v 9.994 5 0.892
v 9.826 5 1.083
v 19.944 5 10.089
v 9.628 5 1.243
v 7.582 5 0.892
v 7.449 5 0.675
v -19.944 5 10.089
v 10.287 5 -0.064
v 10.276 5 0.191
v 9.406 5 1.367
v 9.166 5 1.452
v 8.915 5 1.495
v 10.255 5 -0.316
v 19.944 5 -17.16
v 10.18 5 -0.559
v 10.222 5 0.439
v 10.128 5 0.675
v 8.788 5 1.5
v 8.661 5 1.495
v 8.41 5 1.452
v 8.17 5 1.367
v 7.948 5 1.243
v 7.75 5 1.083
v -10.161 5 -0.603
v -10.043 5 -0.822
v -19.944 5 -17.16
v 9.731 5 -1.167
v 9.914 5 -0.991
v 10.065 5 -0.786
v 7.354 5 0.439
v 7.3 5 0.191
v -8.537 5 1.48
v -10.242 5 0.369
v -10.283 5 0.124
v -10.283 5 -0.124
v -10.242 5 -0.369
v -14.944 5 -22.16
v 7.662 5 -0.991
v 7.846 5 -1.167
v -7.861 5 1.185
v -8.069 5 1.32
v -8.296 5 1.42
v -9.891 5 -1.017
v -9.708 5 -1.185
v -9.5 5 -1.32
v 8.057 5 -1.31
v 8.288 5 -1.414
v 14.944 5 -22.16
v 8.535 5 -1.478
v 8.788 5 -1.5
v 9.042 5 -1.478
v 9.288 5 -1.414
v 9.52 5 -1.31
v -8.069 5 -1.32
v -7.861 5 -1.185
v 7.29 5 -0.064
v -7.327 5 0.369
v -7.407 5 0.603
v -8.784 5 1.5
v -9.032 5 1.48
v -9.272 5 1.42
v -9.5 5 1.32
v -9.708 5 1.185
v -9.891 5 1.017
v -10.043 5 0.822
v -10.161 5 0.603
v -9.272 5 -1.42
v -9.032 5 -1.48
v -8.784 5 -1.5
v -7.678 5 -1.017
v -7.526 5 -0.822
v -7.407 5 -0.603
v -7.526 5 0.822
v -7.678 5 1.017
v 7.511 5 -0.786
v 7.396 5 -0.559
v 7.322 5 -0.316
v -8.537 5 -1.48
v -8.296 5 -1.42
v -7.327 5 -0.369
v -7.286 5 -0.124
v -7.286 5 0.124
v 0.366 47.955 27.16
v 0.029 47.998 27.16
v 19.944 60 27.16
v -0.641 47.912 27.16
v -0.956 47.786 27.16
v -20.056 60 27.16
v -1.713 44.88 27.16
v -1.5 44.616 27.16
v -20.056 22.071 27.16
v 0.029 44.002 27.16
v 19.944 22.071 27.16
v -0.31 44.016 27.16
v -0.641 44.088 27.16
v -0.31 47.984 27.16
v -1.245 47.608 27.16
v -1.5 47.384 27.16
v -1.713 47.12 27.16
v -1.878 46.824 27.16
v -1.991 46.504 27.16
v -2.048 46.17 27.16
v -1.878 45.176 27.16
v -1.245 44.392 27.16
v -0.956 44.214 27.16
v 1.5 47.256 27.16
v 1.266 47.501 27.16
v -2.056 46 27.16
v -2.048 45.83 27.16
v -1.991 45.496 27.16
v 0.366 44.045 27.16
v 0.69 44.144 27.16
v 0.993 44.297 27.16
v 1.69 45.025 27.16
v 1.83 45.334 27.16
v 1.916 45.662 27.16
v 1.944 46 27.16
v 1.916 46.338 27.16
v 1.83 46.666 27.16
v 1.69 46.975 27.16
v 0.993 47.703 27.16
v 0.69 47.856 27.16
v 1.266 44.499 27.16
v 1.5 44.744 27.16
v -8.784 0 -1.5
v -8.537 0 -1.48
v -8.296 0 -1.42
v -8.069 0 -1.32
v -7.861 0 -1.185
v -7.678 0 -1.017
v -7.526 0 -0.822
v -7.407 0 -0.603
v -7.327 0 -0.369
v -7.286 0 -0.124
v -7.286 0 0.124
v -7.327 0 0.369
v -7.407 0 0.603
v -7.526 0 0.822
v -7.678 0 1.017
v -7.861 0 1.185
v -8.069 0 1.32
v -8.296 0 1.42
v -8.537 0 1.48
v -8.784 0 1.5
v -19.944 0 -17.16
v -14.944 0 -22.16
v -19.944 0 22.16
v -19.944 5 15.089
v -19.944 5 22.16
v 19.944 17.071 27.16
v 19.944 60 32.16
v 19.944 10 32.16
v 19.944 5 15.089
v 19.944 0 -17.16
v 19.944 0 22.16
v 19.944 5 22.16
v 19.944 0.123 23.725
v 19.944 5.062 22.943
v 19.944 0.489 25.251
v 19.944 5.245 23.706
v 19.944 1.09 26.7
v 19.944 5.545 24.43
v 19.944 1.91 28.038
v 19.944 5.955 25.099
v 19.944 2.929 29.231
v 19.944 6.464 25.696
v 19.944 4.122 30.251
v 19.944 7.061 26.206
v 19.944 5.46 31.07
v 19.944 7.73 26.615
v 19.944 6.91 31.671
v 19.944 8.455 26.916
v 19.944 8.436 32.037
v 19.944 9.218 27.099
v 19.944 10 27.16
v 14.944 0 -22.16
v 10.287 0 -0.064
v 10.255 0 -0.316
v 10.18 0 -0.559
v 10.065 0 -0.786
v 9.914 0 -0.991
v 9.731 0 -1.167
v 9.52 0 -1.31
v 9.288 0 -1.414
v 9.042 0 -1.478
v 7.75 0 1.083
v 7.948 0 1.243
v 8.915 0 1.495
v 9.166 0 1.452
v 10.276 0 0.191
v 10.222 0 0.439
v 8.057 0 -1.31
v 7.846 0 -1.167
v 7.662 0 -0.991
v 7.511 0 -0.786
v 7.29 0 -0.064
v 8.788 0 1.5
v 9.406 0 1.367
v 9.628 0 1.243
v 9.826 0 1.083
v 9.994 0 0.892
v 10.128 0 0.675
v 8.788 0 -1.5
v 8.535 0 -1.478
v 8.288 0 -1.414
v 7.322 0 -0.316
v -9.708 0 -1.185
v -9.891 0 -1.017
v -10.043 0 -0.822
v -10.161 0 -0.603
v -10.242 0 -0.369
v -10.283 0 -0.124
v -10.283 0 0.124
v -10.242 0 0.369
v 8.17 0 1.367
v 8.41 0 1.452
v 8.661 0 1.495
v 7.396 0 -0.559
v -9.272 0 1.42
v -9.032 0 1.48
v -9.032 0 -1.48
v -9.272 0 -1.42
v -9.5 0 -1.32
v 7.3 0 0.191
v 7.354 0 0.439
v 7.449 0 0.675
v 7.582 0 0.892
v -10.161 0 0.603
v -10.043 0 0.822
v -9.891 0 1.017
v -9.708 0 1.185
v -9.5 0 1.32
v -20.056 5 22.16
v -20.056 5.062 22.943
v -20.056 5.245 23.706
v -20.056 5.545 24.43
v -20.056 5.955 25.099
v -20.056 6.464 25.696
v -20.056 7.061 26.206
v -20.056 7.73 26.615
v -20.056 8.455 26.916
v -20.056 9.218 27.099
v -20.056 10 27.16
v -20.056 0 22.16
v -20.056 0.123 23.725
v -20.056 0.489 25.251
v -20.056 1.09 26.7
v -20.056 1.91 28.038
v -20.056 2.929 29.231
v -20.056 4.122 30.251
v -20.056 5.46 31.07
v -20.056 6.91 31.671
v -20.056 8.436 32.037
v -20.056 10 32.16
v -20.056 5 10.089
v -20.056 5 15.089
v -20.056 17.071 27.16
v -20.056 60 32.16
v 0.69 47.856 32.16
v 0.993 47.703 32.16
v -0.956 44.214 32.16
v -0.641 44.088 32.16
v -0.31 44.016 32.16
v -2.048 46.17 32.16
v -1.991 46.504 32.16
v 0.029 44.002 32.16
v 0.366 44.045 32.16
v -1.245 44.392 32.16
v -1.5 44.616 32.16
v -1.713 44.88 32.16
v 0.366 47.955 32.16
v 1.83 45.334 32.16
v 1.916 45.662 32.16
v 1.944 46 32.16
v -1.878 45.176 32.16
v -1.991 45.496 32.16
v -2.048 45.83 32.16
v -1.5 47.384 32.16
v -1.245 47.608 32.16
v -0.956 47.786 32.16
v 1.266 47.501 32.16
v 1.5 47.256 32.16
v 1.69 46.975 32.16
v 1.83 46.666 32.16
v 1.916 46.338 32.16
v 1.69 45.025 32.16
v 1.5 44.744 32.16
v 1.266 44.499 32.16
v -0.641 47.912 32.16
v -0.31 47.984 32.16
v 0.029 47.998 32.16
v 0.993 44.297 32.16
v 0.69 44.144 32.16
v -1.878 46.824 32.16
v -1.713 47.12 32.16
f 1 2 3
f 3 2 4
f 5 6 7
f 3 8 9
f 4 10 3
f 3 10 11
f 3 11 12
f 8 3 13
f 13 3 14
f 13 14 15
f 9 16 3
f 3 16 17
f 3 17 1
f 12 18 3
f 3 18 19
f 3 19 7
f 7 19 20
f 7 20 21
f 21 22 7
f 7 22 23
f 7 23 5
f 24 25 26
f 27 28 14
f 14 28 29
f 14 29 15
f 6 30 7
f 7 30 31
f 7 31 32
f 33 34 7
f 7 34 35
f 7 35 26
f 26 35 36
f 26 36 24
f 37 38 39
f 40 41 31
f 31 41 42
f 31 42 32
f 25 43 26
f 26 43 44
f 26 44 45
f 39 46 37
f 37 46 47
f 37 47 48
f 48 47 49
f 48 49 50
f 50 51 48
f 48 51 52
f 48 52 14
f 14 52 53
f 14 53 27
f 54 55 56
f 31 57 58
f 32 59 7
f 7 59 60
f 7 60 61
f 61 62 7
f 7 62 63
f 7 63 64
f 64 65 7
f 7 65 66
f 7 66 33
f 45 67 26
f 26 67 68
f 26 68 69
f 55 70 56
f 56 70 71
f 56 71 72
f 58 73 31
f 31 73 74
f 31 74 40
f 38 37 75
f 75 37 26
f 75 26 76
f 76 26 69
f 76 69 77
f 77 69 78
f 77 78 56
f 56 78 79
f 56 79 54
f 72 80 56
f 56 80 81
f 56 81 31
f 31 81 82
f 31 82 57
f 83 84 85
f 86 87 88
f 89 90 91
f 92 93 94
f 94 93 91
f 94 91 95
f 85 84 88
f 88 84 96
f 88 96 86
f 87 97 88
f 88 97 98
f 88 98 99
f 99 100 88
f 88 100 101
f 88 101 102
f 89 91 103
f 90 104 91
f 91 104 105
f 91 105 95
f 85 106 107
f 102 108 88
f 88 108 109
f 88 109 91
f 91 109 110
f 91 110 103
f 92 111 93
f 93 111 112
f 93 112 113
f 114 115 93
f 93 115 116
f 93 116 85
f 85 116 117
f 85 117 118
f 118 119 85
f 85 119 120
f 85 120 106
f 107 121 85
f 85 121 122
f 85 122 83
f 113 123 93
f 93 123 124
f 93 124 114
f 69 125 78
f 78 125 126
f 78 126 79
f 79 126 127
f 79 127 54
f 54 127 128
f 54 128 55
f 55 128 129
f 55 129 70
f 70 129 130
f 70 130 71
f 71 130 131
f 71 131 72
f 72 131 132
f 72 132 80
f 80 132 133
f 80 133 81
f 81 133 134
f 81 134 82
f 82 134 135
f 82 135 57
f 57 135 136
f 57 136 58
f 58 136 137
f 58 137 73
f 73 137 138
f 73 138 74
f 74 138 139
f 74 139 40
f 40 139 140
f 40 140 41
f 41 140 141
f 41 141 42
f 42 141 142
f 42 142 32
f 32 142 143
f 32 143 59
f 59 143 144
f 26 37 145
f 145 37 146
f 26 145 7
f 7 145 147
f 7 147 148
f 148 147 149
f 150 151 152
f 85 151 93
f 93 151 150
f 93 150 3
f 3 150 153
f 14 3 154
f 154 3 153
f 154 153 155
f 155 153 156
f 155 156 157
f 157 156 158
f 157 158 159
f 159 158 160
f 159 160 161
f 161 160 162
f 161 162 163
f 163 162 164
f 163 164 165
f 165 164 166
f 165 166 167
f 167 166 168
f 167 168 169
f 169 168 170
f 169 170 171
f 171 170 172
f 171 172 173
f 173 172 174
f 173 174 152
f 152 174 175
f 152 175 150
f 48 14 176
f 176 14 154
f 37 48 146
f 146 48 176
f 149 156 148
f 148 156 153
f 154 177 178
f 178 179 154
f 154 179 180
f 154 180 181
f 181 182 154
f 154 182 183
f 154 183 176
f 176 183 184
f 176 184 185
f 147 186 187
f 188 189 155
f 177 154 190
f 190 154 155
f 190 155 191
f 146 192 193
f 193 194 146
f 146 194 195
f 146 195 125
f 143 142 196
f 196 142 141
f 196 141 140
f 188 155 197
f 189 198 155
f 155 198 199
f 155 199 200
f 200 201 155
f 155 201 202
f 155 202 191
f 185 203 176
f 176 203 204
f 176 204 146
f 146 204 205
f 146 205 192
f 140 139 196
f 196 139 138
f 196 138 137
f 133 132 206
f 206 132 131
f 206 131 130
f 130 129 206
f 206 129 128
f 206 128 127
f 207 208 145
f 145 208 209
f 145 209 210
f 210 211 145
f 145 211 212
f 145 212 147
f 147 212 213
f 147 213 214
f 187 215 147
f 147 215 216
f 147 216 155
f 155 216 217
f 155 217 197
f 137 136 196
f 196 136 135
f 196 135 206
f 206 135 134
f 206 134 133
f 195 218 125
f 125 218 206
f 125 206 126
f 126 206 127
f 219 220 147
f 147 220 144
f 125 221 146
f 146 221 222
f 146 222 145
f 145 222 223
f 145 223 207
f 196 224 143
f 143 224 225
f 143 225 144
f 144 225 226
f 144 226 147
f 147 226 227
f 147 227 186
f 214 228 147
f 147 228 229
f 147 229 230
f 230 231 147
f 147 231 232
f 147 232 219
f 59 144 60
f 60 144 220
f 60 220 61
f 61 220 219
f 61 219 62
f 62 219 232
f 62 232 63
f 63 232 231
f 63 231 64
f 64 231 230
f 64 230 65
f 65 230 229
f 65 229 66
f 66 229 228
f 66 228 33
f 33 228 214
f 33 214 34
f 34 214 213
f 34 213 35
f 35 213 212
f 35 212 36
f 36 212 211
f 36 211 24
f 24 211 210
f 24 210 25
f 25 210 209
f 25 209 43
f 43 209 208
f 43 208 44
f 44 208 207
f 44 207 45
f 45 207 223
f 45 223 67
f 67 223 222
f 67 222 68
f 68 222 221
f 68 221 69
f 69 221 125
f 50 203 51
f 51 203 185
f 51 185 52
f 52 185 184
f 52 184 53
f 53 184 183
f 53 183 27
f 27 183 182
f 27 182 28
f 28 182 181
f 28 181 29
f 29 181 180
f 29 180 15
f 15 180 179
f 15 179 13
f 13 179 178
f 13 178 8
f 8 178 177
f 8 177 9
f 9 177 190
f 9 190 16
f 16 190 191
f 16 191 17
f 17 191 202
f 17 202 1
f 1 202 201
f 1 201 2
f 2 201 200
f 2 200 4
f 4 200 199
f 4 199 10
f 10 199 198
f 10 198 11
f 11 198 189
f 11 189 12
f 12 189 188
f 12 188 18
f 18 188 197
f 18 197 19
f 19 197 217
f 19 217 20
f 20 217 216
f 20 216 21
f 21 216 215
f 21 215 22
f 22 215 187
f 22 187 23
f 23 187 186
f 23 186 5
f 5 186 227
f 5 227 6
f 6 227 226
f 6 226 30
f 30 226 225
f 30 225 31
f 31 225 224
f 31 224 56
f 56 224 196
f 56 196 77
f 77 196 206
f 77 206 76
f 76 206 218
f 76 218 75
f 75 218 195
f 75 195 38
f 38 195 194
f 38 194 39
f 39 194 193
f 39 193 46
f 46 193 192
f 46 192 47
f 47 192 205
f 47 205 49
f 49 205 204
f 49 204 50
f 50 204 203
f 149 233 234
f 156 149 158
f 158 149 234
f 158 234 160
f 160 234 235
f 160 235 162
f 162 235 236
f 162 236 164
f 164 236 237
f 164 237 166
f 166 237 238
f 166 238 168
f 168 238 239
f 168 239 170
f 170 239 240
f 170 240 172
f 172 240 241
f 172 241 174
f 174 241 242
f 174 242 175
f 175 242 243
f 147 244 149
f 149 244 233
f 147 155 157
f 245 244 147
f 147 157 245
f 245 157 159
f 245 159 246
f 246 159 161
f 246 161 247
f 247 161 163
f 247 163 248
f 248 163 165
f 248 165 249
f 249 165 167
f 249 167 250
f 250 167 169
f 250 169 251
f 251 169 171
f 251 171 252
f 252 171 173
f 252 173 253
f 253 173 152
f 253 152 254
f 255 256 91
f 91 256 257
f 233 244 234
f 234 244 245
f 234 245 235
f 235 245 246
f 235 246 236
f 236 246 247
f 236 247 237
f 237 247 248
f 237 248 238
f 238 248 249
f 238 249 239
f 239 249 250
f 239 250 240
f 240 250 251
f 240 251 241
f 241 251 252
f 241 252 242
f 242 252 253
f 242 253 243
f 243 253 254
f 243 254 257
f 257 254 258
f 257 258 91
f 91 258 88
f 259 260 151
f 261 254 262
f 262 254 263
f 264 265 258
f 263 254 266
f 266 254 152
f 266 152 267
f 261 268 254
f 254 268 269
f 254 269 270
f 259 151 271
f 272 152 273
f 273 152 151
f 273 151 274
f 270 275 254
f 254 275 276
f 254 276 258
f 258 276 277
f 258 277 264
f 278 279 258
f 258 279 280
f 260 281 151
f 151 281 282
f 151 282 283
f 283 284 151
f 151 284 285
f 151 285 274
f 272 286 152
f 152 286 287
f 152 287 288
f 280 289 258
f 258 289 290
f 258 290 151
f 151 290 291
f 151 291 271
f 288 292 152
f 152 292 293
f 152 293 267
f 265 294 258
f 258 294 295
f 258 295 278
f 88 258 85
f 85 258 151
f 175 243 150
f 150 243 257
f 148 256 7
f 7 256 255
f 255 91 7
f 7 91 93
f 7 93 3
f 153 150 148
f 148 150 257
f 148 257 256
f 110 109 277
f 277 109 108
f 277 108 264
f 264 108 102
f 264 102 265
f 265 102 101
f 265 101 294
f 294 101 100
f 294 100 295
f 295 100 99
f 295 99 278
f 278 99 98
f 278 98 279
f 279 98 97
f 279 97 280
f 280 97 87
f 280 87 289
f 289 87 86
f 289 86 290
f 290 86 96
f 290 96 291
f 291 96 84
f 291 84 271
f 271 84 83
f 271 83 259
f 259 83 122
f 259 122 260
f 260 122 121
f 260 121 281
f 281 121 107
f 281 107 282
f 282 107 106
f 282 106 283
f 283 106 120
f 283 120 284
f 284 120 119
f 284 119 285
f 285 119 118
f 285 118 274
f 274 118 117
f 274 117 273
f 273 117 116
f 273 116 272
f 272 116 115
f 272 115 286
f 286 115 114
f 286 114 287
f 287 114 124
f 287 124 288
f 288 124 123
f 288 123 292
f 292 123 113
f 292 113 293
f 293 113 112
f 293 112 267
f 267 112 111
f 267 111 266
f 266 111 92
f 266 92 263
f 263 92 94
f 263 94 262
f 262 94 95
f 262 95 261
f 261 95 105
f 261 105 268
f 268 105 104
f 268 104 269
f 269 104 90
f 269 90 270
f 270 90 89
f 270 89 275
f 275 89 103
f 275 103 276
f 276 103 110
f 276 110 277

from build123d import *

# Parameters (mm, degrees)
BOSS_EXTRUDE1_DEPTH = 5
SKETCH2_R           = 1.5
CUT_EXTRUDE1_DEPTH  = 5
SKETCH1_4_OUTSIDE_W = 53.856
SKETCH1_4_OUTSIDE_H = 58.288
SKETCH1_4_OUTSIDE_R = 1.5
CUT_EXTRUDE3_DEPTH  = 31.230173018
BOSS_EXTRUDE2_DEPTH = 40
SKETCH5_W           = 5
SKETCH5_H           = 50
BOSS_EXTRUDE3_DEPTH = 40
BOSS_EXTRUDE4_DEPTH = 40
SKETCH9_R           = 2
CUT_EXTRUDE4_DEPTH  = 84.384553352


with BuildPart() as part:
    # Sketch1 → Boss-Extrude1 (new body)
    with BuildSketch(Plane(origin=(0, 0, 0), x_dir=(1, 0, 0), z_dir=(0, 1, 0))):
        Polygon((-14.94438846, 22.160431622), (14.94438846, 22.160431622), (19.94438846, 17.160431622), (19.94438846, -22.160431622), (-19.94438846, -22.160431622), (-19.94438846, 17.160431622), align=None)
    extrude(amount=BOSS_EXTRUDE1_DEPTH)

    # Sketch2 → Cut-Extrude1 (cut)
    with BuildSketch(Plane.XZ):
        with Locations((-8.780710157, 0)):
            Circle(SKETCH2_R)
    extrude(amount=-CUT_EXTRUDE1_DEPTH, mode=Mode.SUBTRACT)

    # Sketch1<4> outside → Cut-Extrude3 (cut, through all)
    # profile 1 of 3: a face of its own
    with BuildSketch(Plane(origin=(0, 0, 0), x_dir=(1, 0, 0), z_dir=(0, 1, 0))):
        Rectangle(SKETCH1_4_OUTSIDE_W, SKETCH1_4_OUTSIDE_H)
        Polygon((-14.94438846, 22.160431622), (14.94438846, 22.160431622), (19.94438846, 17.160431622), (19.94438846, -22.160431622), (-19.94438846, -22.160431622), (-19.94438846, 17.160431622), align=None, mode=Mode.SUBTRACT)
    # profile 2 of 3: a face of its own
    with BuildSketch(Plane(origin=(0, 0, 0), x_dir=(1, 0, 0), z_dir=(0, 1, 0))):
        with Locations((8.788189679, 0)):
            Circle(SKETCH1_4_OUTSIDE_R)
    # profile 3 of 3: a face of its own
    with BuildSketch(Plane(origin=(0, 0, 0), x_dir=(1, 0, 0), z_dir=(0, 1, 0))):
        with Locations((-8.788189679, 0)):
            Circle(SKETCH1_4_OUTSIDE_R)
    extrude(amount=CUT_EXTRUDE3_DEPTH, mode=Mode.SUBTRACT)

    # Sketch4 → Boss-Extrude2 (add)
    with BuildSketch(Plane(origin=(19.94438846, 0, 0), x_dir=(0, 0, -1), z_dir=(1, 0, 0))):
        with BuildLine():
            Line((-22.160431622, 5), (-22.160431622, 0))
            ThreePointArc((-22.160431622, 0), (-29.231499434, 2.928932188), (-32.160431622, 10))
            Line((-32.160431622, 10), (-27.160431622, 10))
            ThreePointArc((-27.160431622, 10), (-25.695965528, 6.464466094), (-22.160431622, 5))
        make_face()
    extrude(amount=-BOSS_EXTRUDE2_DEPTH)

    # Sketch5 → Boss-Extrude3 (add)
    with BuildSketch(Plane(origin=(19.94438846, 0, 0), x_dir=(0, 0, -1), z_dir=(1, 0, 0))):
        with Locations((-29.660431622, 35)):
            Rectangle(SKETCH5_W, SKETCH5_H)
    extrude(amount=-BOSS_EXTRUDE3_DEPTH)

    # Sketch6 → Boss-Extrude4 (add)
    with BuildSketch(Plane(origin=(19.94438846, 0, 0), x_dir=(0, 0, -1), z_dir=(1, 0, 0))):
        Polygon((-10.08936381, 5), (-18.624897716, 13.535533906), (-27.160431622, 22.071067812), (-27.160431622, 17.071067812), (-15.08936381, 5), align=None)
    extrude(amount=-BOSS_EXTRUDE4_DEPTH)

    # Sketch9 → Cut-Extrude4 (cut, through all)
    with BuildSketch(Plane.XY.offset(32.160431622)):
        with Locations((-0.05561154, 46)):
            Circle(SKETCH9_R)
    extrude(amount=-CUT_EXTRUDE4_DEPTH, mode=Mode.SUBTRACT)


solid = part.part
